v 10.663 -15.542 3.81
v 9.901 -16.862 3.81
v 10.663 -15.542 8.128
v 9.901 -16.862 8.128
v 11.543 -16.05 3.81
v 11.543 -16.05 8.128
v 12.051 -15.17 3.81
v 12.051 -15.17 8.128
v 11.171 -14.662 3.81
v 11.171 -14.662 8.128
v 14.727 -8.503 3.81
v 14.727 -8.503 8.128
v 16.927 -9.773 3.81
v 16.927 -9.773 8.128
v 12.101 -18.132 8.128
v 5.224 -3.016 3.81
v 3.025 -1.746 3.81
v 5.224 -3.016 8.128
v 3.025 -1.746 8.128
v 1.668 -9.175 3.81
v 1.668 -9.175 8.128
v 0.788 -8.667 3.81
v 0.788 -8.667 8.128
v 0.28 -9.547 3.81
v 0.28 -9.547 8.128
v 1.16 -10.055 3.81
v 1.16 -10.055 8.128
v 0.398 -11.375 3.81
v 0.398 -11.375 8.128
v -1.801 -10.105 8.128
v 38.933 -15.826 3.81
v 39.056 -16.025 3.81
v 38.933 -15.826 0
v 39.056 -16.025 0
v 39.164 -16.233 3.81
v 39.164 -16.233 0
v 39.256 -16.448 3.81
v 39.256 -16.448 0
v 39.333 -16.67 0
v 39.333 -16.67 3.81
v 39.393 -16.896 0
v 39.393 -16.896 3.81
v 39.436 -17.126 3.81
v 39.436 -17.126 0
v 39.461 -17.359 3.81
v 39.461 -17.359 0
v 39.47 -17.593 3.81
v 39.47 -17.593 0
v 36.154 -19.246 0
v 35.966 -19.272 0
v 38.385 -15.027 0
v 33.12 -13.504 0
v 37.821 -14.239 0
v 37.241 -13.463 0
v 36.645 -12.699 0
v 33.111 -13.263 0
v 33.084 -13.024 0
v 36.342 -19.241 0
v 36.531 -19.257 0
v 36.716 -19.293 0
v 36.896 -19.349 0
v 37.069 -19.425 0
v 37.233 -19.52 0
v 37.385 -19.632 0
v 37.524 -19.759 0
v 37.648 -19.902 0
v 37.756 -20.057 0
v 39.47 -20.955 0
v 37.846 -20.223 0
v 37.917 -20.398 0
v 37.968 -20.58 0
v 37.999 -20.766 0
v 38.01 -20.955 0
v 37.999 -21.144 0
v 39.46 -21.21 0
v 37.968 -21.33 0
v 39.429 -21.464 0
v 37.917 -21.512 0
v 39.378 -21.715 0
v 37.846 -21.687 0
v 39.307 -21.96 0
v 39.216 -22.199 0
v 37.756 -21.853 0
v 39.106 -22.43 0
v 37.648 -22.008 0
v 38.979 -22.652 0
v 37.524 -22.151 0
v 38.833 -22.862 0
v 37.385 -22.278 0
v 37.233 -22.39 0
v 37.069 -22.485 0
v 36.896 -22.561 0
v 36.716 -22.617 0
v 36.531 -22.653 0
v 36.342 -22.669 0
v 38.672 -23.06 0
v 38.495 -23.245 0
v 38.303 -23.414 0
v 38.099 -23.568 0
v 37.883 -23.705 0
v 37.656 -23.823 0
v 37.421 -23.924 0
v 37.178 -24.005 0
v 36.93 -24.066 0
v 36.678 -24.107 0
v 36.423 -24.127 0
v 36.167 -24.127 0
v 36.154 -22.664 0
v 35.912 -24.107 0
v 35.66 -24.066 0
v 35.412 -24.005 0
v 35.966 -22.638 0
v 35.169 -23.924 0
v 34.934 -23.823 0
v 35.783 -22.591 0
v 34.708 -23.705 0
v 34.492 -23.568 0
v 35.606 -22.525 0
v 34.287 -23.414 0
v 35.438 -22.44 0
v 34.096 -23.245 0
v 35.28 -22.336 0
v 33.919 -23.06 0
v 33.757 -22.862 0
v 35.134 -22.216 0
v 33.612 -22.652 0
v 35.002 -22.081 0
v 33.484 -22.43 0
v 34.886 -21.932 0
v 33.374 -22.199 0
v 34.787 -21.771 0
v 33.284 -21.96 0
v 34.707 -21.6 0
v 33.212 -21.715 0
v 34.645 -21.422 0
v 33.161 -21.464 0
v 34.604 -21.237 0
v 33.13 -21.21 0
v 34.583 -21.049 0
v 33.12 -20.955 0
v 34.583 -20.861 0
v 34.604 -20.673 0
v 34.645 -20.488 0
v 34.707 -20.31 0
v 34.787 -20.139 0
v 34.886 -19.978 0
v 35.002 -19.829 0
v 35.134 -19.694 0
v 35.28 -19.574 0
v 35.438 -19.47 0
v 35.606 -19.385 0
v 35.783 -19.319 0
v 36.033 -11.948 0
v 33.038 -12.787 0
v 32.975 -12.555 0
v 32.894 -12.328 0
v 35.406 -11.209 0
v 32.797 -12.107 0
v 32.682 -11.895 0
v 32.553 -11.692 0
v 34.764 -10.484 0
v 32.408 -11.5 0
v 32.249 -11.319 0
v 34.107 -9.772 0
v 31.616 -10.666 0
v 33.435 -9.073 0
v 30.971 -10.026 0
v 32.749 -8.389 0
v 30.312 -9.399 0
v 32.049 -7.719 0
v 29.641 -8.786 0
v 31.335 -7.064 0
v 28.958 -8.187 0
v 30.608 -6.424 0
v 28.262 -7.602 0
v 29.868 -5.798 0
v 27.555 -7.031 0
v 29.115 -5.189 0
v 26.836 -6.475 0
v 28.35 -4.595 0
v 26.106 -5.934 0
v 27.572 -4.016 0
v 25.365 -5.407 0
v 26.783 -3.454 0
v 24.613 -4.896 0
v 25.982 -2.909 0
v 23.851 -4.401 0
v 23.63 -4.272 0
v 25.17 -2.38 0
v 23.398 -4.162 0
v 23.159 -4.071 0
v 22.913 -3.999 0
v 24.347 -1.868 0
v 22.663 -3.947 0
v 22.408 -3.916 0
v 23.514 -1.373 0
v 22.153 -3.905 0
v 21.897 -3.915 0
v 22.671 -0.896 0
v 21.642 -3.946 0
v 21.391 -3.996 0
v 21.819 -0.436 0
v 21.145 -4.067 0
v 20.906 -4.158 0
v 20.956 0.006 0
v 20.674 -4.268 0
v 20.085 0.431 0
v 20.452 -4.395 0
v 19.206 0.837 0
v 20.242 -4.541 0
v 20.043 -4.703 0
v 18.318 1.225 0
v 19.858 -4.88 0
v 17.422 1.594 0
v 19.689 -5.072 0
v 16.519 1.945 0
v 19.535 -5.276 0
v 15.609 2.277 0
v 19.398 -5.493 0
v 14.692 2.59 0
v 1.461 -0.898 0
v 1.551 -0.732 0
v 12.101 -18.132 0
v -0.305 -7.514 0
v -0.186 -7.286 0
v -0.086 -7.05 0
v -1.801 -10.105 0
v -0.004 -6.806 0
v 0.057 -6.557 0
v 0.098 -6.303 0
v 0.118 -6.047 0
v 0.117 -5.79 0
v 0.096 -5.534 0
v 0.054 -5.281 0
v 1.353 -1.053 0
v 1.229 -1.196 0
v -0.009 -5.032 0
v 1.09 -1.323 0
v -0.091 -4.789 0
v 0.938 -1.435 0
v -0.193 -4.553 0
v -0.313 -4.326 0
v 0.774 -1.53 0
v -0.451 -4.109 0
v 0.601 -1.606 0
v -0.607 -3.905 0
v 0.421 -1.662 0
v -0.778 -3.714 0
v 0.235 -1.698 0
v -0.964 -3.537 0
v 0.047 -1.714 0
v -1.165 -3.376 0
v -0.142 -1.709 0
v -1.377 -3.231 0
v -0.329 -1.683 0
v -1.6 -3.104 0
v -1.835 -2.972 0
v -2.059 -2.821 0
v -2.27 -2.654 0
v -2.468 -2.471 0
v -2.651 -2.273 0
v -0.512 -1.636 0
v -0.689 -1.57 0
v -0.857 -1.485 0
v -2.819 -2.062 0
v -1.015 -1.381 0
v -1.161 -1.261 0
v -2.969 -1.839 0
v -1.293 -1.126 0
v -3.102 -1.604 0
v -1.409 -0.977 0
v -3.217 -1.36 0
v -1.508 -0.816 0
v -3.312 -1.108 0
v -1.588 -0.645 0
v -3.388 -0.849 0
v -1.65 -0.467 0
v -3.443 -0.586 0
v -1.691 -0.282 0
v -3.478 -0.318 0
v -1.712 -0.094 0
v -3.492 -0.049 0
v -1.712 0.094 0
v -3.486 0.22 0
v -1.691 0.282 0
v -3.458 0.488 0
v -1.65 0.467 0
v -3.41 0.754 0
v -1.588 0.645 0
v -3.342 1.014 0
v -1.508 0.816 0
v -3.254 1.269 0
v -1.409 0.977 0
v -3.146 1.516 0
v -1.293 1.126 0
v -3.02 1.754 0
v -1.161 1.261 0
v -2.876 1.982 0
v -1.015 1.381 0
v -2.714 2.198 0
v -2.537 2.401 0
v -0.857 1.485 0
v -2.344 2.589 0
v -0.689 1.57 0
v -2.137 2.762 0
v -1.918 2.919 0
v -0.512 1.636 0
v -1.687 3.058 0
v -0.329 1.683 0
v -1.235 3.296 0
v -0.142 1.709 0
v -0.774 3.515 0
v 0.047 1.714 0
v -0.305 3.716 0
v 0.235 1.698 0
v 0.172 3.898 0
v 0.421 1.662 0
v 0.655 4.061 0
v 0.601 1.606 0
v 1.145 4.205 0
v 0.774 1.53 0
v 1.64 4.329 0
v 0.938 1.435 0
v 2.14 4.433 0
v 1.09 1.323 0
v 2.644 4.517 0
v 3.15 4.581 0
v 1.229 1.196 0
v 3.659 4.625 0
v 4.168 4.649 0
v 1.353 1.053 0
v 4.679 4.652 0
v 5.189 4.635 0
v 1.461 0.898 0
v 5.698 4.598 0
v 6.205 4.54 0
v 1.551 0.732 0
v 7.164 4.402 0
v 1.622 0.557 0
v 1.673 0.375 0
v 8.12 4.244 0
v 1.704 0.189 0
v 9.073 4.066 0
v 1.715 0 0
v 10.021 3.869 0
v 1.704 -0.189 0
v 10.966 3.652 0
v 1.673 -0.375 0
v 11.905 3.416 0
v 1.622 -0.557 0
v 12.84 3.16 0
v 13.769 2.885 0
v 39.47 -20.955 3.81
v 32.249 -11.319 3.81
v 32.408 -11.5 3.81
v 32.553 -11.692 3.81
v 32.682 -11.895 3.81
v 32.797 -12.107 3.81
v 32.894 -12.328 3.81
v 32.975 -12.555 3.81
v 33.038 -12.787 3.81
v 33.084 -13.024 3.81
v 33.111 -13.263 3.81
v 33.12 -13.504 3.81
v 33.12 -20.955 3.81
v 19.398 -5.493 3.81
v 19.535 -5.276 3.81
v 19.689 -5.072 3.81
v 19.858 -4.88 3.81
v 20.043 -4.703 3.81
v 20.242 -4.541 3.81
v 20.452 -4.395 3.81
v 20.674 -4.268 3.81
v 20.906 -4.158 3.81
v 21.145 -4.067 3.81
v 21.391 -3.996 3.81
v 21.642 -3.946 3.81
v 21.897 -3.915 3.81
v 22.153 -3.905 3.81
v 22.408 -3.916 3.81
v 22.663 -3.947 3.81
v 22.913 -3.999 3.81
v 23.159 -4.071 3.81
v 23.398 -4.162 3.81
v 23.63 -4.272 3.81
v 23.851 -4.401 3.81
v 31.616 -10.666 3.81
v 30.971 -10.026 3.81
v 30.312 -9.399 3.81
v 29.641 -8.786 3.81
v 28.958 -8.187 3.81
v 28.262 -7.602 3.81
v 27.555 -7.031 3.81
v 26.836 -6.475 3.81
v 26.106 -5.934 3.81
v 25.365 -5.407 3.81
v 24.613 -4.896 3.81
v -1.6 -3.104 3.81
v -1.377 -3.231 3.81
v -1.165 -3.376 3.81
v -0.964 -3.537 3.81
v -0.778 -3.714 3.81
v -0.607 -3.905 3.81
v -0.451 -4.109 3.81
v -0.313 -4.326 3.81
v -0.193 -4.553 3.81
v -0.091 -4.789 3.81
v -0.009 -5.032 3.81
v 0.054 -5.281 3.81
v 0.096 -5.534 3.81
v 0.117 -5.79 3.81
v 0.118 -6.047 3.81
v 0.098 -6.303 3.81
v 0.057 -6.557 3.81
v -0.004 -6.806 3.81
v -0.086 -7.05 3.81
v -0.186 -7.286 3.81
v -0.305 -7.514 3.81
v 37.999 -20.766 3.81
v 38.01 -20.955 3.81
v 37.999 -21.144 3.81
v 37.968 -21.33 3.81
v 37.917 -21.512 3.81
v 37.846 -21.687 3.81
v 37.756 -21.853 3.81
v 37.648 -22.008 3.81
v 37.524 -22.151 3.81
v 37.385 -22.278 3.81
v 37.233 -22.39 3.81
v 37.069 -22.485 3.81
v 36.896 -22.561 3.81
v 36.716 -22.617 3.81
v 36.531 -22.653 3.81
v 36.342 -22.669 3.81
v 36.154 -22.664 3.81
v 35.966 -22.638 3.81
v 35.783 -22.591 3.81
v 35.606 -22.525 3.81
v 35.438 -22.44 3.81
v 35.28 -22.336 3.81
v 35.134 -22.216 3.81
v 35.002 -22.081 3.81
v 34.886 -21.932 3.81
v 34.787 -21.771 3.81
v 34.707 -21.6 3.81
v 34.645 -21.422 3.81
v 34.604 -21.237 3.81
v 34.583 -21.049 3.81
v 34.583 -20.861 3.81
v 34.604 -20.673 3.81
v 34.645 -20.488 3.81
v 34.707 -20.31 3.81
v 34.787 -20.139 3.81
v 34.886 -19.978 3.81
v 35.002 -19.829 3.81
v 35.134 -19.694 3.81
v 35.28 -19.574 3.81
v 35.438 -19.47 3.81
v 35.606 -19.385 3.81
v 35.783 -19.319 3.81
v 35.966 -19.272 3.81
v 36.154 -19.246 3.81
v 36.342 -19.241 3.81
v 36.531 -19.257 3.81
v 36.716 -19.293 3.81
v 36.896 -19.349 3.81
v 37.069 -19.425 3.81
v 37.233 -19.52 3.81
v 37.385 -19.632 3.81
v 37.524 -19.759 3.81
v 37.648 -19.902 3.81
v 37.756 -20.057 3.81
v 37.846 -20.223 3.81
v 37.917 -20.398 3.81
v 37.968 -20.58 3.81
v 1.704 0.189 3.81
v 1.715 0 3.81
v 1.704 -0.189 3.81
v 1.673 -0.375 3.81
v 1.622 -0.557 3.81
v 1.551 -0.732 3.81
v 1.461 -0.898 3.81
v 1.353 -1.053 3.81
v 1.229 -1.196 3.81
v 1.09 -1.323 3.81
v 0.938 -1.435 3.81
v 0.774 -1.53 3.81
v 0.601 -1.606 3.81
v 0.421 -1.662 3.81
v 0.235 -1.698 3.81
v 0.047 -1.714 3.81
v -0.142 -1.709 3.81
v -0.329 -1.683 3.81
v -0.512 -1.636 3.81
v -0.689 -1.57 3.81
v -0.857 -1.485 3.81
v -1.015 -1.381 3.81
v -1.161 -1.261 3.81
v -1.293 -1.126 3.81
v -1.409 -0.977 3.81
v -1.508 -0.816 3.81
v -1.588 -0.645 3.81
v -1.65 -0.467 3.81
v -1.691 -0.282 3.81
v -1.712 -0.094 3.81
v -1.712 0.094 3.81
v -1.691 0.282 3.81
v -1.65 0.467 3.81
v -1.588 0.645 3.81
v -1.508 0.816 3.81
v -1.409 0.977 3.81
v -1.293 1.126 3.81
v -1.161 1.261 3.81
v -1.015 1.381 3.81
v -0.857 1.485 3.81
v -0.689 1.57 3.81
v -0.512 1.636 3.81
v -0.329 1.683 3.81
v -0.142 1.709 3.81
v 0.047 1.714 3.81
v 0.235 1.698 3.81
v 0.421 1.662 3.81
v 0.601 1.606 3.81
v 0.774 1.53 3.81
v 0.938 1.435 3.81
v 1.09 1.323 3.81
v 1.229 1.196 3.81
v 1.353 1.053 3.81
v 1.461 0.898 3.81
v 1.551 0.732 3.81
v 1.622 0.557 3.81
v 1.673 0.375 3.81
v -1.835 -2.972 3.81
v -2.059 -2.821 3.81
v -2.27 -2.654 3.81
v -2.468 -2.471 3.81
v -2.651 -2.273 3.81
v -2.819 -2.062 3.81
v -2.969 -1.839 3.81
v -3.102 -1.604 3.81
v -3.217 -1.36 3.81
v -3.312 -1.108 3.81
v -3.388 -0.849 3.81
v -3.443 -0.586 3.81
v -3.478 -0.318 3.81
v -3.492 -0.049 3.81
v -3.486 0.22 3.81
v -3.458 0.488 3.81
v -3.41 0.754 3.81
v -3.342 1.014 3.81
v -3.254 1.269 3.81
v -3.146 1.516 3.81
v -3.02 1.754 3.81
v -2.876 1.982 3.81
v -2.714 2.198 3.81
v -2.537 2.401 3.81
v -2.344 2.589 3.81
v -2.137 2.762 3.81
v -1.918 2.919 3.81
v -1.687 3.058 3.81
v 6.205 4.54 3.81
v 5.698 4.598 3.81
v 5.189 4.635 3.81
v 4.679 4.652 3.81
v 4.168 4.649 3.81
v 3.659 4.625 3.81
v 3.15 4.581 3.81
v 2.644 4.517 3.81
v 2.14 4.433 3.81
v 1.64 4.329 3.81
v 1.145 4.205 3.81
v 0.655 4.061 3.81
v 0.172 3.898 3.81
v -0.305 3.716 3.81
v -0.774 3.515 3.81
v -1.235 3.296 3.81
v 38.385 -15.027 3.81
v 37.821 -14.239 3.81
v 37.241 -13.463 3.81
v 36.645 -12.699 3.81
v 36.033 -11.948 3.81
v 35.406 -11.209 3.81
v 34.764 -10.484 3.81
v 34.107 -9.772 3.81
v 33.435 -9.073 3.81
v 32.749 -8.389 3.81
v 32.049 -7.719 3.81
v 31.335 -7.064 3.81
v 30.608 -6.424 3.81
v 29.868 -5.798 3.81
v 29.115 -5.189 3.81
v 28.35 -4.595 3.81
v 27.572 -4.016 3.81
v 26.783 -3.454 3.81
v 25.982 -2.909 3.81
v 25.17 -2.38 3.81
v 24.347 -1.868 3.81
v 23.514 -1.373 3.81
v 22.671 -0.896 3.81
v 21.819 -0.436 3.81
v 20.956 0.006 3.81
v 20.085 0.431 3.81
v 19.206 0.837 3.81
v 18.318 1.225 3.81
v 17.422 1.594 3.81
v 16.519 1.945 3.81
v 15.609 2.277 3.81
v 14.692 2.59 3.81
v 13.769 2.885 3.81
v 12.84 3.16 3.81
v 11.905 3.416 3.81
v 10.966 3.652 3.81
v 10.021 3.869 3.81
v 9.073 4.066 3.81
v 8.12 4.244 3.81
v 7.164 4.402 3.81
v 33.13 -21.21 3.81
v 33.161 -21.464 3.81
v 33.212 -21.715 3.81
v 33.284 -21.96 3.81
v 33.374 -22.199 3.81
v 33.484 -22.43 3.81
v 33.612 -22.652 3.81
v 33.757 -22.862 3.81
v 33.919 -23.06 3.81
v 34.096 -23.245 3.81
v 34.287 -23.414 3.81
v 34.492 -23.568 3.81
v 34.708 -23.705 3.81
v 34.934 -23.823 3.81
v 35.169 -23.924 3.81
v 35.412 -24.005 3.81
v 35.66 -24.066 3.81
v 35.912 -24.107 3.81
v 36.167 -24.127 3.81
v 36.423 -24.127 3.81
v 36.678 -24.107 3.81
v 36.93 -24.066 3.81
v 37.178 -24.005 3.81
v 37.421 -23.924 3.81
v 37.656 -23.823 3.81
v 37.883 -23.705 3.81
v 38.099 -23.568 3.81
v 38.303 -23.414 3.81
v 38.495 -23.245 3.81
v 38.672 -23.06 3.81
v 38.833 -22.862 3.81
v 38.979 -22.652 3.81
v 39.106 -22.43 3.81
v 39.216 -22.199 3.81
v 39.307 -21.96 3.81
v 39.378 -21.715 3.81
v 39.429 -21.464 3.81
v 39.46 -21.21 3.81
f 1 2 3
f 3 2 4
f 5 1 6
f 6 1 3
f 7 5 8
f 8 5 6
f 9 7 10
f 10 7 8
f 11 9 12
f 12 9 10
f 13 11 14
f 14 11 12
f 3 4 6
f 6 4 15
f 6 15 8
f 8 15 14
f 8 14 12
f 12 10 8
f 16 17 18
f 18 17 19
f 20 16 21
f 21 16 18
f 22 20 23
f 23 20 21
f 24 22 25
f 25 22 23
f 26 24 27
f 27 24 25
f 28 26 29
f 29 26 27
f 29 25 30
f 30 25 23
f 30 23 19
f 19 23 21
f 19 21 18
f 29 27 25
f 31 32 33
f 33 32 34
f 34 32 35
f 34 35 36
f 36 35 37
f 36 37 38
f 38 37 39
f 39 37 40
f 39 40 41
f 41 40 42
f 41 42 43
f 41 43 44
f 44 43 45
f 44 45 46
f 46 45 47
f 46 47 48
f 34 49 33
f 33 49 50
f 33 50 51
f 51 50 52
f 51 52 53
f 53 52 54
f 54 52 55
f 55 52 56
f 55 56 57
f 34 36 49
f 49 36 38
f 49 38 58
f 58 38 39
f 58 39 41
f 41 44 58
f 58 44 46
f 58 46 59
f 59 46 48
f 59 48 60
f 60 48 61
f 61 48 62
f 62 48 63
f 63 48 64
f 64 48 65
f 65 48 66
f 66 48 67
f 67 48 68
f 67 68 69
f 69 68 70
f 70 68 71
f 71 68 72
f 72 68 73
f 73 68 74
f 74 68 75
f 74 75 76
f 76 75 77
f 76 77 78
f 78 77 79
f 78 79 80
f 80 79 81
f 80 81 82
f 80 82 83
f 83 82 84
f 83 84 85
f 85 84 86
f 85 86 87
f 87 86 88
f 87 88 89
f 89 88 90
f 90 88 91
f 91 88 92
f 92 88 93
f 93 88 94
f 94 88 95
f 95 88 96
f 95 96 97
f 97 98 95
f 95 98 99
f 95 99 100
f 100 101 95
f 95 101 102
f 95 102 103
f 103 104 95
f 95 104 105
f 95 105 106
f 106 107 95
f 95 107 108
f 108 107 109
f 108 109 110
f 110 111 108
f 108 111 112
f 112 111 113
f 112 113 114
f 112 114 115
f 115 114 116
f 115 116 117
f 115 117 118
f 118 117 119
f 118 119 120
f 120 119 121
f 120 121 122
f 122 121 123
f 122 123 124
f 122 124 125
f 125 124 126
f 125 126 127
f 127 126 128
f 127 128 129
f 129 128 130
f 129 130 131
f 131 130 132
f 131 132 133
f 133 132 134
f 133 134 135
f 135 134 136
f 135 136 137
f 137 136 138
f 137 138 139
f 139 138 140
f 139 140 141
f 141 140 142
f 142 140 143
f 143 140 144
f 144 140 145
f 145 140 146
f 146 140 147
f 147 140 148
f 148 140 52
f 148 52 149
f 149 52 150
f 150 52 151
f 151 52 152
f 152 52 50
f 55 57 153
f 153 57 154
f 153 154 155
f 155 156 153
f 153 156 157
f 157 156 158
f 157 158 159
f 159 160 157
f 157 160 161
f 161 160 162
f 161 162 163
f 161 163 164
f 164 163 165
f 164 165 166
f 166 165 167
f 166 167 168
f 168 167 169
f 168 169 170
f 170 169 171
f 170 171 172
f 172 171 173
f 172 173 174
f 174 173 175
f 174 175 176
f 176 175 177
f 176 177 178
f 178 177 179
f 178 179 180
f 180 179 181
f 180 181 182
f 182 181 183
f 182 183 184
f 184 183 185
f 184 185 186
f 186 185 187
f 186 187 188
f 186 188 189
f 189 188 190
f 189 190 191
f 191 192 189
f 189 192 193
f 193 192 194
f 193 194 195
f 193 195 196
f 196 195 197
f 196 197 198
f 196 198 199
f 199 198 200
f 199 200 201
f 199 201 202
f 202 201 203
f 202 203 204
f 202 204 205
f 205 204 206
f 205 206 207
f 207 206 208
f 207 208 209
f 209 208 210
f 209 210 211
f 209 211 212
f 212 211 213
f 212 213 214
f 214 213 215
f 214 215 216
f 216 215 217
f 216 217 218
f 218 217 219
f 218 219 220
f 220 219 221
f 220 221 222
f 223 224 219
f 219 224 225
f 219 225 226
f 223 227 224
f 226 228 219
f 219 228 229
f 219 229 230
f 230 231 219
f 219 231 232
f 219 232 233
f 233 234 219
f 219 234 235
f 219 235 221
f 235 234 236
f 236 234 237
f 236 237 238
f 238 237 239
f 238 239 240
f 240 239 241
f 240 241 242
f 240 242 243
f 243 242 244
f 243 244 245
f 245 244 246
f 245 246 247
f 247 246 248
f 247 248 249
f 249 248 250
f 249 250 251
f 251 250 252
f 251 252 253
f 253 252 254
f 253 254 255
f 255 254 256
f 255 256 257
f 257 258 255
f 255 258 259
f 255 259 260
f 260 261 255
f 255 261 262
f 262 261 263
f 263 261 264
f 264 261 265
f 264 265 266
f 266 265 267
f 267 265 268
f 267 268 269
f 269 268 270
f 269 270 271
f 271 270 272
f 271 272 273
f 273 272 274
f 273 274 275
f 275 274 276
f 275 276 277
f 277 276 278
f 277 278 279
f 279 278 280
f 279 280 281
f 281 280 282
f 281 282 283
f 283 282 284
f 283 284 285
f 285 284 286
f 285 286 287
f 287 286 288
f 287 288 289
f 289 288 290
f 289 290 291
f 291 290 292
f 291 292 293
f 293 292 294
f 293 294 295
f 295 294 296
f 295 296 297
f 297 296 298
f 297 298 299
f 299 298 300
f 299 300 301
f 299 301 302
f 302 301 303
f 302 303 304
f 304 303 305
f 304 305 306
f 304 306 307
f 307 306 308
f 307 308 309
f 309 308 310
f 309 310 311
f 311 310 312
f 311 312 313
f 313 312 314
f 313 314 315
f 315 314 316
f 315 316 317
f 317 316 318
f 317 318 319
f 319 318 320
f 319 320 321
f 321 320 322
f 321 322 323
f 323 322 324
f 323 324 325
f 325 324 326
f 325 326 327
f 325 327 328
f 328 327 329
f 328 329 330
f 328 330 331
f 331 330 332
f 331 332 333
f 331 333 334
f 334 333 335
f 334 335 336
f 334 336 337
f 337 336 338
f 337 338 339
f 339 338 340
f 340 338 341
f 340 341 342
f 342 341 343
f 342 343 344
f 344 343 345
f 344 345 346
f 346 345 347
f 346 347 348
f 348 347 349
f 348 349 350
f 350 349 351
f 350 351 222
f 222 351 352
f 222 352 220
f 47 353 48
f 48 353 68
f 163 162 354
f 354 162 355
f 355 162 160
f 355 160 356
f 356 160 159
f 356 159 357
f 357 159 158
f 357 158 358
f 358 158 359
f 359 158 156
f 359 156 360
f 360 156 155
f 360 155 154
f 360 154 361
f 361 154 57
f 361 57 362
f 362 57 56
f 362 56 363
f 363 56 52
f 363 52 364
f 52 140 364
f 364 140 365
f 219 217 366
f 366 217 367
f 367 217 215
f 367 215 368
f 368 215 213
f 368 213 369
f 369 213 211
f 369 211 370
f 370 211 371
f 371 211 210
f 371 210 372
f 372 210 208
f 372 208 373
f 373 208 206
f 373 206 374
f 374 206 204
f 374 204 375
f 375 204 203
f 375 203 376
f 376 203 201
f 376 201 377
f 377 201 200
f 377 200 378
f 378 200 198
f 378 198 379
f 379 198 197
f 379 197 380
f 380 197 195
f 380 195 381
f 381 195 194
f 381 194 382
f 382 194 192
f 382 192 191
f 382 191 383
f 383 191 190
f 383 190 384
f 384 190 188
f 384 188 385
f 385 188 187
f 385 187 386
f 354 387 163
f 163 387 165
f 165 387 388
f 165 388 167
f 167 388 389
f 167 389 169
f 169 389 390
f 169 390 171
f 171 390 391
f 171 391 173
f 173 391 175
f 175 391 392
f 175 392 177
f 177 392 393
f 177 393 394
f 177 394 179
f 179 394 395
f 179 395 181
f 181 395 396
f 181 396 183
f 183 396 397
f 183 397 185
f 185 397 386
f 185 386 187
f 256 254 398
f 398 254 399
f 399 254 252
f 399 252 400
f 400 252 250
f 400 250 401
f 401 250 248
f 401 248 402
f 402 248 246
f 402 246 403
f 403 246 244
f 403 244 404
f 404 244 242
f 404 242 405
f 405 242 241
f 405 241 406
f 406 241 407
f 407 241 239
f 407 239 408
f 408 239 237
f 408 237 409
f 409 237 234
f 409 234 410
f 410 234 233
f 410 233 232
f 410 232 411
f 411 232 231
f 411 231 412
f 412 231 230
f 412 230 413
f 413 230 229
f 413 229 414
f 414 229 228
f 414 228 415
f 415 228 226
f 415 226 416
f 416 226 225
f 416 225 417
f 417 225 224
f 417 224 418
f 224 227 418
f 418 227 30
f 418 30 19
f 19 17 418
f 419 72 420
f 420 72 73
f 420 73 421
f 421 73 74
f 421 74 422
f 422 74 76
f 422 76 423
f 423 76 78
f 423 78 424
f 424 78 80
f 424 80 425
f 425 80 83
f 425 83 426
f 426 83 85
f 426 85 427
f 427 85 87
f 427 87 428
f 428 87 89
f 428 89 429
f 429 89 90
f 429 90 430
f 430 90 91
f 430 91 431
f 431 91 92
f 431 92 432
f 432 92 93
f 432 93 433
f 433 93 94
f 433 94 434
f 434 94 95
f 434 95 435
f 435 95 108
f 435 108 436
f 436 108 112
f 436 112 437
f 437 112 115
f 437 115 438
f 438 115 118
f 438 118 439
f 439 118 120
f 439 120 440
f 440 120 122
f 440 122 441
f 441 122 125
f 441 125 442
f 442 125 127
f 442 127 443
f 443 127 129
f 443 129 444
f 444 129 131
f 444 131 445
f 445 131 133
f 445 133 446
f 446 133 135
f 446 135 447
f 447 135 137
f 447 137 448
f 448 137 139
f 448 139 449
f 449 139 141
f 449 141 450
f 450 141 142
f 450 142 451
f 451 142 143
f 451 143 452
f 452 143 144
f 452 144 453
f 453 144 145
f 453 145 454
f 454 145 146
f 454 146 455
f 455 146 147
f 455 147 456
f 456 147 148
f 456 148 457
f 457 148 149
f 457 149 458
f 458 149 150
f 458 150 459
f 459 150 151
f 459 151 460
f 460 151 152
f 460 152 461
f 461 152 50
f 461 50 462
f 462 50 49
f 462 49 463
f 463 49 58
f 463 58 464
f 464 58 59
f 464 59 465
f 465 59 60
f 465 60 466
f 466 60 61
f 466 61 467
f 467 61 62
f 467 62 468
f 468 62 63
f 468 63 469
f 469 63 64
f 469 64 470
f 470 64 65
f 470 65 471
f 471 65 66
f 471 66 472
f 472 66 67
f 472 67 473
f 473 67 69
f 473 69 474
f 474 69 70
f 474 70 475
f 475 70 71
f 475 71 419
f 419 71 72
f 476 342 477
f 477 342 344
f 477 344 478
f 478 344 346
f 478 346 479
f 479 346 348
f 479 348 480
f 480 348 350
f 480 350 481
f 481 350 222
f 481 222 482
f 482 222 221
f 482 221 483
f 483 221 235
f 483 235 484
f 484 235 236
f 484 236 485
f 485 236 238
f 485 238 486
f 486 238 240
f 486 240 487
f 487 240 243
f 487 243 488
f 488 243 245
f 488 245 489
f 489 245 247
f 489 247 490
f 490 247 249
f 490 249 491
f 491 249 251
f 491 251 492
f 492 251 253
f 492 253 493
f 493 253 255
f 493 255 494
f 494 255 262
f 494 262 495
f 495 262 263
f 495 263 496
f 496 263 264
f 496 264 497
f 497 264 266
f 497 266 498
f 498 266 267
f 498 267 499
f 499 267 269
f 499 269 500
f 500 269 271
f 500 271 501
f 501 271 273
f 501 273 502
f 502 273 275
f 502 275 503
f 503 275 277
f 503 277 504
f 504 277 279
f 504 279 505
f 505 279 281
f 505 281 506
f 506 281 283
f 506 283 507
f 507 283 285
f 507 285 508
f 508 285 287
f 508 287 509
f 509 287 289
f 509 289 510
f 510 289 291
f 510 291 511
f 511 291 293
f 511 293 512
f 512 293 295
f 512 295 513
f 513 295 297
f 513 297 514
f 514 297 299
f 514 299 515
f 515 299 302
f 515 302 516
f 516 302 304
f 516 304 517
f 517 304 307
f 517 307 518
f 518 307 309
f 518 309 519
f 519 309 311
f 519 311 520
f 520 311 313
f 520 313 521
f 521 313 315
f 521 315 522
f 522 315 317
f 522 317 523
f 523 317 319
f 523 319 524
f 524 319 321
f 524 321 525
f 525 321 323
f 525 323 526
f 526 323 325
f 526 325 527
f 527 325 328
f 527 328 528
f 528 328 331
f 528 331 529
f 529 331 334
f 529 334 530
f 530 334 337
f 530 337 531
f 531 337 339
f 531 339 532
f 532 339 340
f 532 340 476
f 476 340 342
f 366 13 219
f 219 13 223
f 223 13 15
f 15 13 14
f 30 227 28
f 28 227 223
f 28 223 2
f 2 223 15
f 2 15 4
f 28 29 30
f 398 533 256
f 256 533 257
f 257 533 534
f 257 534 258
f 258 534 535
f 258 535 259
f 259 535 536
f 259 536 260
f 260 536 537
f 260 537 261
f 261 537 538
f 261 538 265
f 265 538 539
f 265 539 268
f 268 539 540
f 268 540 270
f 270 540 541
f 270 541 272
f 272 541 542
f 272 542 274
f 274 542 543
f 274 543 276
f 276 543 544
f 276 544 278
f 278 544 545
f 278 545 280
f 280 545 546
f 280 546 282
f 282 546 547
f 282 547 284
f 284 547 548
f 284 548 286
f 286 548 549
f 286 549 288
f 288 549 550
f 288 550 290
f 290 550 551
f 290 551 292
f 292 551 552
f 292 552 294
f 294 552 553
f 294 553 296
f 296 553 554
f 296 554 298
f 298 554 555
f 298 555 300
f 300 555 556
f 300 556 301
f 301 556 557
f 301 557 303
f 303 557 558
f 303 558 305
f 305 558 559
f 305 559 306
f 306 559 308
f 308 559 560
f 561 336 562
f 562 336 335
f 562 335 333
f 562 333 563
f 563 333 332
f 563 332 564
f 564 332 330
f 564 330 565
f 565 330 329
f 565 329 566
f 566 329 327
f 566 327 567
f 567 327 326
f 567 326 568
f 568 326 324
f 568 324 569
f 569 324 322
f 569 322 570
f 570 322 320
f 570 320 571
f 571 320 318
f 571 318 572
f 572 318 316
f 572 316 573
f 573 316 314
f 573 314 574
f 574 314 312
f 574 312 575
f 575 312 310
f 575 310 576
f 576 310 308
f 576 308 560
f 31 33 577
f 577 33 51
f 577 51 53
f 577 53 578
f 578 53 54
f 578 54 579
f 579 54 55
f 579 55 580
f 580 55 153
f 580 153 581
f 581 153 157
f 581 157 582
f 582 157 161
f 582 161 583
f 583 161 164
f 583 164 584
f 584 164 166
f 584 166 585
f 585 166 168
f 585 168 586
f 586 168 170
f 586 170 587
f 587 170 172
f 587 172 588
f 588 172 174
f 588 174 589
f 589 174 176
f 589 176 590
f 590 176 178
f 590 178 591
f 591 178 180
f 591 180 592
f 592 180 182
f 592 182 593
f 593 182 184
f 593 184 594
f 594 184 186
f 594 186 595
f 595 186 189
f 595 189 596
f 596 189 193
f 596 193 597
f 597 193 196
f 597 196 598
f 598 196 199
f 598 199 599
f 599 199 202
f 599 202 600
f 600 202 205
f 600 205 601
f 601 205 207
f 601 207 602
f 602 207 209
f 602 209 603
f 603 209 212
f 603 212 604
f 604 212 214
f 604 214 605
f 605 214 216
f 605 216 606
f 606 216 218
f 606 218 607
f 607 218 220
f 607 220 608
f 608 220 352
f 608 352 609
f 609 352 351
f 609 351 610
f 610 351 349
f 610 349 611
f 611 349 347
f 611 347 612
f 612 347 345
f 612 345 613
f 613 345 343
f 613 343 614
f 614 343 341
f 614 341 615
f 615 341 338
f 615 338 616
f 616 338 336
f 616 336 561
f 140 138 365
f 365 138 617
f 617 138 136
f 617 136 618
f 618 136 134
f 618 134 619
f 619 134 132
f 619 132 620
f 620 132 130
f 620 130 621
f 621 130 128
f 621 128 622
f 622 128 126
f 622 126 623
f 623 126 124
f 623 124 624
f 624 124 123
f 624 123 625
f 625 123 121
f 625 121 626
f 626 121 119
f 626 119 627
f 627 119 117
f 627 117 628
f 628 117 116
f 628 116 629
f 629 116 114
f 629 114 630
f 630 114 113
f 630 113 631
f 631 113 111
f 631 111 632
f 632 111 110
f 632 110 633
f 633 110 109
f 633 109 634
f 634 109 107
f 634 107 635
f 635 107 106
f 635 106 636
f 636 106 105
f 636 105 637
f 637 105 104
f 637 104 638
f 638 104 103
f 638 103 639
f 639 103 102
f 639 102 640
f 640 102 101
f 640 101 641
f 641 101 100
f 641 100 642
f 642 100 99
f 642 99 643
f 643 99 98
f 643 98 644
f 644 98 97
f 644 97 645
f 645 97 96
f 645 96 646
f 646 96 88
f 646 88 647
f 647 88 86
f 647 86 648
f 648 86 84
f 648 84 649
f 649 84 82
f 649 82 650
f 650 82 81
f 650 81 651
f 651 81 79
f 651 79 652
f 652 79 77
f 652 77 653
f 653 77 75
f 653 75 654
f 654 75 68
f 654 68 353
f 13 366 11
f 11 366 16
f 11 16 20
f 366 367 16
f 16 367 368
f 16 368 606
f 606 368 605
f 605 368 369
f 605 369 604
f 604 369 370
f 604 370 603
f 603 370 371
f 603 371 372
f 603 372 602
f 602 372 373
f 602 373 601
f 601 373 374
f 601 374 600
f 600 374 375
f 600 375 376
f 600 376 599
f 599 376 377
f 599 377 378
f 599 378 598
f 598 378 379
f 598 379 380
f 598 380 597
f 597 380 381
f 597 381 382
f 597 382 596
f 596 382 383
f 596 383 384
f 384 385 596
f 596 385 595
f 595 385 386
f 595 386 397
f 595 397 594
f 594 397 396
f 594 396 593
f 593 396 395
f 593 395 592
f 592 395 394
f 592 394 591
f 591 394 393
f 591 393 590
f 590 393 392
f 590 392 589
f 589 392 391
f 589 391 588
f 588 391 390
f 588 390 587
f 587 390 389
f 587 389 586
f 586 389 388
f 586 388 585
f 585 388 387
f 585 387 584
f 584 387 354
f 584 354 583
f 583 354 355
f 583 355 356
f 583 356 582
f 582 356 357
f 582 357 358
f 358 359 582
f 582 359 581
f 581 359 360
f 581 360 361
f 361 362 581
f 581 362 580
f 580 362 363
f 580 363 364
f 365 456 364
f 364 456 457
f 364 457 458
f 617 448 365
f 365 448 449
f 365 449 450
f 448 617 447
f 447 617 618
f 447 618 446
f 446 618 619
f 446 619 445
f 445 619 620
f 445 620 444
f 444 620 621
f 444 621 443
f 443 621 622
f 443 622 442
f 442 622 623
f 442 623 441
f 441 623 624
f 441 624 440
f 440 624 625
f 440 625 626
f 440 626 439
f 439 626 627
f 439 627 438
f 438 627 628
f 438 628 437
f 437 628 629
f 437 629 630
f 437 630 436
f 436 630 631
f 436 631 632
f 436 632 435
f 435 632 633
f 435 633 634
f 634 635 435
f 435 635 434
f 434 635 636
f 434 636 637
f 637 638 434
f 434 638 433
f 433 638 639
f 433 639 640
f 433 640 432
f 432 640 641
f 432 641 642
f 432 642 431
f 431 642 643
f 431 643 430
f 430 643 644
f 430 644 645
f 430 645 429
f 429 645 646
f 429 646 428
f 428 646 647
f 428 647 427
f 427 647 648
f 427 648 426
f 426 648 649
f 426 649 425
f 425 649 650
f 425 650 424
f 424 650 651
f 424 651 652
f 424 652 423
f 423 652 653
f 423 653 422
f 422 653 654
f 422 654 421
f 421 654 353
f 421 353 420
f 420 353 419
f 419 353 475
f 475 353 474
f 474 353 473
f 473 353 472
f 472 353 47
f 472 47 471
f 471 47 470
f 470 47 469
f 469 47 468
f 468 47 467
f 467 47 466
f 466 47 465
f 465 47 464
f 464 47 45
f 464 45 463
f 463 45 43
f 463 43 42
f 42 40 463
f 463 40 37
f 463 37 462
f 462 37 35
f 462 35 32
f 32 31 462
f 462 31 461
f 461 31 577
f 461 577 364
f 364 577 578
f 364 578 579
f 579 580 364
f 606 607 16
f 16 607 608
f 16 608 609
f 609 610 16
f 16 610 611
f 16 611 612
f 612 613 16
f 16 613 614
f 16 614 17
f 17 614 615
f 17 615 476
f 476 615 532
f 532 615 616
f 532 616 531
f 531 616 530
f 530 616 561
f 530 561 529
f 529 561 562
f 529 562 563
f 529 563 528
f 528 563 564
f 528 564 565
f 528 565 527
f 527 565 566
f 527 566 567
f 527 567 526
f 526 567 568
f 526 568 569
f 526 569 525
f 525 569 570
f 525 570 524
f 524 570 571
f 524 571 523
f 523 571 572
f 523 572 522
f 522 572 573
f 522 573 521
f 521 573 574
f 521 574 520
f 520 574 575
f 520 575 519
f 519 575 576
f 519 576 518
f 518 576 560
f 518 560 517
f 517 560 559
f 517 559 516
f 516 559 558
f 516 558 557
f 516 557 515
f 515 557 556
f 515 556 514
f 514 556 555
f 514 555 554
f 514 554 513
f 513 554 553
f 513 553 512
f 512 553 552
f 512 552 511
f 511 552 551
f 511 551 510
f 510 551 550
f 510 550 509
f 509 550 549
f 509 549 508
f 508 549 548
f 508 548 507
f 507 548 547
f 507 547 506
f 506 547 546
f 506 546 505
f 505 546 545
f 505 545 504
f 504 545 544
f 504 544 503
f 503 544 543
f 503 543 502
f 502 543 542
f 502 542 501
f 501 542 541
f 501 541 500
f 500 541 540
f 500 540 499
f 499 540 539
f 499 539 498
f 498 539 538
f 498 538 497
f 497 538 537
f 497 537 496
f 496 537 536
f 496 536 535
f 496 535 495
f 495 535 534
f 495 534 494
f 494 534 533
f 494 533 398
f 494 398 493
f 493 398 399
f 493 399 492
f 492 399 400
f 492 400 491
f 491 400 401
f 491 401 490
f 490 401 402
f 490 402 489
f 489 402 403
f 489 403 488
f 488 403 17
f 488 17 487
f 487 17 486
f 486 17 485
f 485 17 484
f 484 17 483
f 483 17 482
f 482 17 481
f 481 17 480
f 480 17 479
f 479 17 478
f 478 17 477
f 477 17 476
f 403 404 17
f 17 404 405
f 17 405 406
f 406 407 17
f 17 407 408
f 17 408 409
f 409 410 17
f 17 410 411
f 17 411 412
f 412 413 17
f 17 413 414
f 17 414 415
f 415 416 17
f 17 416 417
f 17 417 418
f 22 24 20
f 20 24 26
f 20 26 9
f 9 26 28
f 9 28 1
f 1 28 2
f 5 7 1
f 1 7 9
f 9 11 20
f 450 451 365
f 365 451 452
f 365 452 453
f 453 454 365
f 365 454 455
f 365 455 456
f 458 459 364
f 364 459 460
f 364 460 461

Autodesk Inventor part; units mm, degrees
ref_plane "YZ Plane" through (0, 0, 0) normal (1, 0, 0) x (0, 1, 0)
ref_plane "XZ Plane" through (0, 0, 0) normal (0, 1, 0) x (-1, 0, 0)
ref_plane "XY Plane" through (0, 0, 0) normal (0, 0, 1) x (1, 0, 0)
sketch "Sketch1" plane through (0, 0, 0) normal (0, 0, 1) x (1, 0, 0)
  circle A0 centre (0, 0) radius 1.7145
  arc A1 (-1.687, 3.0581) -> (3.0246, -1.7462) centre (0, 0) ccw
  circle A2 centre (36.2951, -20.955) radius 1.7145
  arc A3 (33.5455, -19.3675) -> (39.4701, -20.955) centre (36.2951, -20.955) ccw
  line L0 (0, 0) -> (44.3838, 0) construction
  arc A4 (39.4701, -16.6464) -> (6.2054, 4.5403) centre (0, -41.91) ccw
  line L1 (33.1201, -20.955) -> (33.1201, -12.2644)
  line L2 (39.4701, -20.955) -> (39.4701, -16.6464)
  arc A5 (6.2054, 4.5403) -> (-1.687, 3.0581) centre (4.5073, -8.1706) ccw
  line L3 (0, 0) -> (36.2951, -20.955) construction
  line L4 (3.0246, -1.7462) -> (-1.8014, -10.1051)
  line L5 (-1.8014, -10.1051) -> (12.1007, -18.1315)
  line L6 (12.1007, -18.1315) -> (16.9267, -9.7726)
  line L7 (16.9267, -9.7726) -> (20.993, -2.7297)
  arc A6 (33.1201, -12.2644) -> (20.993, -2.7297) centre (0, -41.91) ccw
  dimension "d0" = 3.429
  dimension "d1" = 6.985
  dimension "d2" = 3.429
  dimension "d3" = 6.35
  dimension "d4" = 30
  dimension "d5" = 41.91
  dimension "d6" = 93.726
  dimension "d7" = 41.91
  dimension "d10" = 16.0528
  dimension "d11" = 9.652
extrude "Extrusion1" add sketch "Sketch1" along normal blind 3.81
fillet "Fillet1" radius 3.175 4 edges at (3.0246, -1.7462, 1.905) (20.993, -2.7297, 1.905) (33.1201, -12.2644, 1.905) (39.4701, -16.6464, 1.905)
sketch "Sketch2" plane through (0, 0, 3.81) normal (0, 0, 1) x (1, 0, 0)
  line L0 (-1.8014, -10.1051) -> (12.1007, -18.1315) projected
  line L1 (12.1007, -18.1315) -> (9.901, -16.8615)
  line L2 (14.727, -8.5026) -> (16.9267, -9.7726)
  line L3 (12.1007, -18.1315) -> (19.3978, -5.4927) projected
  line L4 (12.1007, -18.1315) -> (16.9267, -9.7726)
  line L5 (-0.3054, -7.5139) -> (-1.8014, -10.1051) projected
  line L6 (-1.8014, -10.1051) -> (3.0246, -1.7463)
  line L7 (3.0246, -1.7463) -> (5.2243, -3.0163)
  line L8 (0.3983, -11.3751) -> (-1.8014, -10.1051)
  line L9 (11.171, -14.6618) -> (12.0509, -15.1698)
  line L10 (12.0509, -15.1698) -> (11.5429, -16.0497)
  line L11 (11.5429, -16.0497) -> (10.663, -15.5417)
  line L12 (1.6683, -9.1754) -> (0.7884, -8.6674)
  line L13 (0.7884, -8.6674) -> (0.2804, -9.5473)
  line L14 (0.2804, -9.5473) -> (1.1603, -10.0553)
  line L15 (5.2243, -3.0163) -> (1.6683, -9.1754)
  line L16 (1.1603, -10.0553) -> (0.3983, -11.3751)
  line L17 (9.901, -16.8615) -> (10.663, -15.5417)
  line L18 (11.171, -14.6618) -> (14.727, -8.5026)
  point P0 (0, 0)
  dimension "d15" = 9.652
  dimension "d17" = 2.54
  dimension "d18" = 7.112
  dimension "d19" = 7.112
  dimension "d20" = 1.016
  dimension "d21" = 1.016
extrude "Extrusion2" add sketch "Sketch2" along normal blind 4.318
properties part number "BatteryBalanceConnectorHolder"
